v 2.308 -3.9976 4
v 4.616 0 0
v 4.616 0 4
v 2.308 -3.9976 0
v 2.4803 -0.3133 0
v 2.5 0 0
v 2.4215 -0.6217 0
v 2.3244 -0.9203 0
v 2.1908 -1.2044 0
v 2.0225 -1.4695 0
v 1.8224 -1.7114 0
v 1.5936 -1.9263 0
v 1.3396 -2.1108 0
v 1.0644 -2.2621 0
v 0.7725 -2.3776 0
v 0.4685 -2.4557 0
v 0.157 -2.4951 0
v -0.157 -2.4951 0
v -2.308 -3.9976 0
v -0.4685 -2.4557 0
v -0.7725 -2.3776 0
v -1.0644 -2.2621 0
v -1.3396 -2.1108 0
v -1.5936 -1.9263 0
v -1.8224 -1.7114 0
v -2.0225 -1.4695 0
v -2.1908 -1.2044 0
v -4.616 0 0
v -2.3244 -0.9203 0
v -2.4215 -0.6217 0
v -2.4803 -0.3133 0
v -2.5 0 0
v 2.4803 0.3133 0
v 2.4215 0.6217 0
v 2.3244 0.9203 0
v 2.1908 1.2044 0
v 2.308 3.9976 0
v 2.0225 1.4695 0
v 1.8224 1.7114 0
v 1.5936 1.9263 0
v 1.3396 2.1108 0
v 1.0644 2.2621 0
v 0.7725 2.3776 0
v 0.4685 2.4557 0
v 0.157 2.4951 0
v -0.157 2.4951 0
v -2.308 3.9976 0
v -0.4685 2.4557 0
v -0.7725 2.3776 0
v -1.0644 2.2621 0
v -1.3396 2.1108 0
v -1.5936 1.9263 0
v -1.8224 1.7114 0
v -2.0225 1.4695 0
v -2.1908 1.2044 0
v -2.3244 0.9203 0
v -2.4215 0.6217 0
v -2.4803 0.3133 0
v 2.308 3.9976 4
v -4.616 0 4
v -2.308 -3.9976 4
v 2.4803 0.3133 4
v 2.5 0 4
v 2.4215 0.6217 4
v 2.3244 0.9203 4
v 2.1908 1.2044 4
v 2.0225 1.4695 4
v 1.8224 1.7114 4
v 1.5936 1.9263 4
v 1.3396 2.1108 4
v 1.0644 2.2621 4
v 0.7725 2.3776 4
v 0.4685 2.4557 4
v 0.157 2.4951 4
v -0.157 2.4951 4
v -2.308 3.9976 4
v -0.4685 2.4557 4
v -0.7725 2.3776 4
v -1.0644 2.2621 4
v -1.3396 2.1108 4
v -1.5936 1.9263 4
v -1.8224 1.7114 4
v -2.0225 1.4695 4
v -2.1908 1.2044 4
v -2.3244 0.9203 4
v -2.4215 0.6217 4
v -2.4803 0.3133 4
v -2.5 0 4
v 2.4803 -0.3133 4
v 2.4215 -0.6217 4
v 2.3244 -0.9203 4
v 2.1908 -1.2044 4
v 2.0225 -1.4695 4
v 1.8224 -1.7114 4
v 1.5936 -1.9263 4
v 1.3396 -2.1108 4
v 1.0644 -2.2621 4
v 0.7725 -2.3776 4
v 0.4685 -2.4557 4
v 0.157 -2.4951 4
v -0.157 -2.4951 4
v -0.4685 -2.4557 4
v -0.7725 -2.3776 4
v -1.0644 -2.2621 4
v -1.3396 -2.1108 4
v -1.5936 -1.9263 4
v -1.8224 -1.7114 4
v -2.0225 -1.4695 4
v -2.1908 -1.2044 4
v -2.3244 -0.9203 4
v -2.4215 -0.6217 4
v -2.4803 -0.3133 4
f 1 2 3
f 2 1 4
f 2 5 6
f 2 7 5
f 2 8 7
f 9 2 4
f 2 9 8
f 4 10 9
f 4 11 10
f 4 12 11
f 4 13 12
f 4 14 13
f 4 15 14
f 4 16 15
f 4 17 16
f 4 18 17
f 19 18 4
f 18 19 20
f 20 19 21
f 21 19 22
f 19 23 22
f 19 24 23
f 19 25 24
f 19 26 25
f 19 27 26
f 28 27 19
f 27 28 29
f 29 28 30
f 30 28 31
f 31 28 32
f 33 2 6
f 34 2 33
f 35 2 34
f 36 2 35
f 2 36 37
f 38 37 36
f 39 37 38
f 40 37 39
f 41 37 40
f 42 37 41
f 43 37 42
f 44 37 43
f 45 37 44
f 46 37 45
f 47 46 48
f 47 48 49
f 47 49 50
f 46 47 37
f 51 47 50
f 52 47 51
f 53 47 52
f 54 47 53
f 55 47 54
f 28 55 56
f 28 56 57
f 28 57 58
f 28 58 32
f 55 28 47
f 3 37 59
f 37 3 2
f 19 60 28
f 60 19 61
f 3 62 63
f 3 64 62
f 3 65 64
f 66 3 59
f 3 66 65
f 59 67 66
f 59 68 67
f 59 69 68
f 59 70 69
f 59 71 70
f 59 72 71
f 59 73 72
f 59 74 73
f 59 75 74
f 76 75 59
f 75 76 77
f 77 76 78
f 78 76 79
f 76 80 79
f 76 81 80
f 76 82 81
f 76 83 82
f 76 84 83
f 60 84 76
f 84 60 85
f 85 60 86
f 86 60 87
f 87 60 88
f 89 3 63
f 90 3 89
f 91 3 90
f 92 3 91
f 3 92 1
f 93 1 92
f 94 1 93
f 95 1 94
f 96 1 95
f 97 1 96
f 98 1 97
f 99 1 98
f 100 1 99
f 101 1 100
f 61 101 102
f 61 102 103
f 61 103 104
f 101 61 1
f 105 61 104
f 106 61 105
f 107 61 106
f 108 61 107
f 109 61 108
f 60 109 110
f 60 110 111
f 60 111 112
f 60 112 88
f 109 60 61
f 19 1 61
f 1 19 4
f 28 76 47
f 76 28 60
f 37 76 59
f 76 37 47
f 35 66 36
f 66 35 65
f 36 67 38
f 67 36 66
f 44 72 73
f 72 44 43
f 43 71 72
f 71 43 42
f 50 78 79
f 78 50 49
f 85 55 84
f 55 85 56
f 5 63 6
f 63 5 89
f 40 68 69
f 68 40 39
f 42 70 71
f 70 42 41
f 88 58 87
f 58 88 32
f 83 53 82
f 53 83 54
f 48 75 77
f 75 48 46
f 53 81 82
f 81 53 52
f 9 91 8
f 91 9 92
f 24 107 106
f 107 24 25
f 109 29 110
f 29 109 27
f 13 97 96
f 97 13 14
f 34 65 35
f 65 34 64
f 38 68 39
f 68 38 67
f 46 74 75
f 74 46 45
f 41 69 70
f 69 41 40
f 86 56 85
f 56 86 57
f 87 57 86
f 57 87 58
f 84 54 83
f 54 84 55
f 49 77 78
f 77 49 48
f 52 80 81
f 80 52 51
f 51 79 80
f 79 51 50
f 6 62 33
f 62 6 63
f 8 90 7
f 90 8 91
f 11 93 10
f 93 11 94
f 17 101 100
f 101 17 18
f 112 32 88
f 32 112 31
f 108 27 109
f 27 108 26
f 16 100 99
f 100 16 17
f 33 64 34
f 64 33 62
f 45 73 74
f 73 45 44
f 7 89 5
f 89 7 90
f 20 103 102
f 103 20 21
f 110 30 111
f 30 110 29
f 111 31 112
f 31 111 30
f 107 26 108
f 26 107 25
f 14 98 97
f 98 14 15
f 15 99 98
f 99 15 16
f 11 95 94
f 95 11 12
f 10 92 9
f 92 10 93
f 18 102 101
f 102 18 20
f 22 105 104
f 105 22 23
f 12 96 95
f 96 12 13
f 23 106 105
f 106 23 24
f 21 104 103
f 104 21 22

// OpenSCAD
$fn = 50;


difference() {
	union() {
		translate(v = [0, 0, 0]) {
			rotate(a = [0, 0, 0]) {
				#translate(v = [0, 0, 0]) {
					rotate(a = [0, 0, 0]) {
						linear_extrude(height = 4) {
							polygon(points = [[4.6160000000, 0.0000000000], [2.3080000000, 3.9975732639], [-2.3080000000, 3.9975732639], [-4.6160000000, 0.0000000000], [-2.3080000000, -3.9975732639], [2.3080000000, -3.9975732639]]);
						}
					}
				}
			}
		}
	}
	union() {
		translate(v = [0, 0, -10]) {
			rotate(a = [0, 0, 0]) {
				cylinder(h = 100, r = 2.5000000000);
			}
		}
	}
}
